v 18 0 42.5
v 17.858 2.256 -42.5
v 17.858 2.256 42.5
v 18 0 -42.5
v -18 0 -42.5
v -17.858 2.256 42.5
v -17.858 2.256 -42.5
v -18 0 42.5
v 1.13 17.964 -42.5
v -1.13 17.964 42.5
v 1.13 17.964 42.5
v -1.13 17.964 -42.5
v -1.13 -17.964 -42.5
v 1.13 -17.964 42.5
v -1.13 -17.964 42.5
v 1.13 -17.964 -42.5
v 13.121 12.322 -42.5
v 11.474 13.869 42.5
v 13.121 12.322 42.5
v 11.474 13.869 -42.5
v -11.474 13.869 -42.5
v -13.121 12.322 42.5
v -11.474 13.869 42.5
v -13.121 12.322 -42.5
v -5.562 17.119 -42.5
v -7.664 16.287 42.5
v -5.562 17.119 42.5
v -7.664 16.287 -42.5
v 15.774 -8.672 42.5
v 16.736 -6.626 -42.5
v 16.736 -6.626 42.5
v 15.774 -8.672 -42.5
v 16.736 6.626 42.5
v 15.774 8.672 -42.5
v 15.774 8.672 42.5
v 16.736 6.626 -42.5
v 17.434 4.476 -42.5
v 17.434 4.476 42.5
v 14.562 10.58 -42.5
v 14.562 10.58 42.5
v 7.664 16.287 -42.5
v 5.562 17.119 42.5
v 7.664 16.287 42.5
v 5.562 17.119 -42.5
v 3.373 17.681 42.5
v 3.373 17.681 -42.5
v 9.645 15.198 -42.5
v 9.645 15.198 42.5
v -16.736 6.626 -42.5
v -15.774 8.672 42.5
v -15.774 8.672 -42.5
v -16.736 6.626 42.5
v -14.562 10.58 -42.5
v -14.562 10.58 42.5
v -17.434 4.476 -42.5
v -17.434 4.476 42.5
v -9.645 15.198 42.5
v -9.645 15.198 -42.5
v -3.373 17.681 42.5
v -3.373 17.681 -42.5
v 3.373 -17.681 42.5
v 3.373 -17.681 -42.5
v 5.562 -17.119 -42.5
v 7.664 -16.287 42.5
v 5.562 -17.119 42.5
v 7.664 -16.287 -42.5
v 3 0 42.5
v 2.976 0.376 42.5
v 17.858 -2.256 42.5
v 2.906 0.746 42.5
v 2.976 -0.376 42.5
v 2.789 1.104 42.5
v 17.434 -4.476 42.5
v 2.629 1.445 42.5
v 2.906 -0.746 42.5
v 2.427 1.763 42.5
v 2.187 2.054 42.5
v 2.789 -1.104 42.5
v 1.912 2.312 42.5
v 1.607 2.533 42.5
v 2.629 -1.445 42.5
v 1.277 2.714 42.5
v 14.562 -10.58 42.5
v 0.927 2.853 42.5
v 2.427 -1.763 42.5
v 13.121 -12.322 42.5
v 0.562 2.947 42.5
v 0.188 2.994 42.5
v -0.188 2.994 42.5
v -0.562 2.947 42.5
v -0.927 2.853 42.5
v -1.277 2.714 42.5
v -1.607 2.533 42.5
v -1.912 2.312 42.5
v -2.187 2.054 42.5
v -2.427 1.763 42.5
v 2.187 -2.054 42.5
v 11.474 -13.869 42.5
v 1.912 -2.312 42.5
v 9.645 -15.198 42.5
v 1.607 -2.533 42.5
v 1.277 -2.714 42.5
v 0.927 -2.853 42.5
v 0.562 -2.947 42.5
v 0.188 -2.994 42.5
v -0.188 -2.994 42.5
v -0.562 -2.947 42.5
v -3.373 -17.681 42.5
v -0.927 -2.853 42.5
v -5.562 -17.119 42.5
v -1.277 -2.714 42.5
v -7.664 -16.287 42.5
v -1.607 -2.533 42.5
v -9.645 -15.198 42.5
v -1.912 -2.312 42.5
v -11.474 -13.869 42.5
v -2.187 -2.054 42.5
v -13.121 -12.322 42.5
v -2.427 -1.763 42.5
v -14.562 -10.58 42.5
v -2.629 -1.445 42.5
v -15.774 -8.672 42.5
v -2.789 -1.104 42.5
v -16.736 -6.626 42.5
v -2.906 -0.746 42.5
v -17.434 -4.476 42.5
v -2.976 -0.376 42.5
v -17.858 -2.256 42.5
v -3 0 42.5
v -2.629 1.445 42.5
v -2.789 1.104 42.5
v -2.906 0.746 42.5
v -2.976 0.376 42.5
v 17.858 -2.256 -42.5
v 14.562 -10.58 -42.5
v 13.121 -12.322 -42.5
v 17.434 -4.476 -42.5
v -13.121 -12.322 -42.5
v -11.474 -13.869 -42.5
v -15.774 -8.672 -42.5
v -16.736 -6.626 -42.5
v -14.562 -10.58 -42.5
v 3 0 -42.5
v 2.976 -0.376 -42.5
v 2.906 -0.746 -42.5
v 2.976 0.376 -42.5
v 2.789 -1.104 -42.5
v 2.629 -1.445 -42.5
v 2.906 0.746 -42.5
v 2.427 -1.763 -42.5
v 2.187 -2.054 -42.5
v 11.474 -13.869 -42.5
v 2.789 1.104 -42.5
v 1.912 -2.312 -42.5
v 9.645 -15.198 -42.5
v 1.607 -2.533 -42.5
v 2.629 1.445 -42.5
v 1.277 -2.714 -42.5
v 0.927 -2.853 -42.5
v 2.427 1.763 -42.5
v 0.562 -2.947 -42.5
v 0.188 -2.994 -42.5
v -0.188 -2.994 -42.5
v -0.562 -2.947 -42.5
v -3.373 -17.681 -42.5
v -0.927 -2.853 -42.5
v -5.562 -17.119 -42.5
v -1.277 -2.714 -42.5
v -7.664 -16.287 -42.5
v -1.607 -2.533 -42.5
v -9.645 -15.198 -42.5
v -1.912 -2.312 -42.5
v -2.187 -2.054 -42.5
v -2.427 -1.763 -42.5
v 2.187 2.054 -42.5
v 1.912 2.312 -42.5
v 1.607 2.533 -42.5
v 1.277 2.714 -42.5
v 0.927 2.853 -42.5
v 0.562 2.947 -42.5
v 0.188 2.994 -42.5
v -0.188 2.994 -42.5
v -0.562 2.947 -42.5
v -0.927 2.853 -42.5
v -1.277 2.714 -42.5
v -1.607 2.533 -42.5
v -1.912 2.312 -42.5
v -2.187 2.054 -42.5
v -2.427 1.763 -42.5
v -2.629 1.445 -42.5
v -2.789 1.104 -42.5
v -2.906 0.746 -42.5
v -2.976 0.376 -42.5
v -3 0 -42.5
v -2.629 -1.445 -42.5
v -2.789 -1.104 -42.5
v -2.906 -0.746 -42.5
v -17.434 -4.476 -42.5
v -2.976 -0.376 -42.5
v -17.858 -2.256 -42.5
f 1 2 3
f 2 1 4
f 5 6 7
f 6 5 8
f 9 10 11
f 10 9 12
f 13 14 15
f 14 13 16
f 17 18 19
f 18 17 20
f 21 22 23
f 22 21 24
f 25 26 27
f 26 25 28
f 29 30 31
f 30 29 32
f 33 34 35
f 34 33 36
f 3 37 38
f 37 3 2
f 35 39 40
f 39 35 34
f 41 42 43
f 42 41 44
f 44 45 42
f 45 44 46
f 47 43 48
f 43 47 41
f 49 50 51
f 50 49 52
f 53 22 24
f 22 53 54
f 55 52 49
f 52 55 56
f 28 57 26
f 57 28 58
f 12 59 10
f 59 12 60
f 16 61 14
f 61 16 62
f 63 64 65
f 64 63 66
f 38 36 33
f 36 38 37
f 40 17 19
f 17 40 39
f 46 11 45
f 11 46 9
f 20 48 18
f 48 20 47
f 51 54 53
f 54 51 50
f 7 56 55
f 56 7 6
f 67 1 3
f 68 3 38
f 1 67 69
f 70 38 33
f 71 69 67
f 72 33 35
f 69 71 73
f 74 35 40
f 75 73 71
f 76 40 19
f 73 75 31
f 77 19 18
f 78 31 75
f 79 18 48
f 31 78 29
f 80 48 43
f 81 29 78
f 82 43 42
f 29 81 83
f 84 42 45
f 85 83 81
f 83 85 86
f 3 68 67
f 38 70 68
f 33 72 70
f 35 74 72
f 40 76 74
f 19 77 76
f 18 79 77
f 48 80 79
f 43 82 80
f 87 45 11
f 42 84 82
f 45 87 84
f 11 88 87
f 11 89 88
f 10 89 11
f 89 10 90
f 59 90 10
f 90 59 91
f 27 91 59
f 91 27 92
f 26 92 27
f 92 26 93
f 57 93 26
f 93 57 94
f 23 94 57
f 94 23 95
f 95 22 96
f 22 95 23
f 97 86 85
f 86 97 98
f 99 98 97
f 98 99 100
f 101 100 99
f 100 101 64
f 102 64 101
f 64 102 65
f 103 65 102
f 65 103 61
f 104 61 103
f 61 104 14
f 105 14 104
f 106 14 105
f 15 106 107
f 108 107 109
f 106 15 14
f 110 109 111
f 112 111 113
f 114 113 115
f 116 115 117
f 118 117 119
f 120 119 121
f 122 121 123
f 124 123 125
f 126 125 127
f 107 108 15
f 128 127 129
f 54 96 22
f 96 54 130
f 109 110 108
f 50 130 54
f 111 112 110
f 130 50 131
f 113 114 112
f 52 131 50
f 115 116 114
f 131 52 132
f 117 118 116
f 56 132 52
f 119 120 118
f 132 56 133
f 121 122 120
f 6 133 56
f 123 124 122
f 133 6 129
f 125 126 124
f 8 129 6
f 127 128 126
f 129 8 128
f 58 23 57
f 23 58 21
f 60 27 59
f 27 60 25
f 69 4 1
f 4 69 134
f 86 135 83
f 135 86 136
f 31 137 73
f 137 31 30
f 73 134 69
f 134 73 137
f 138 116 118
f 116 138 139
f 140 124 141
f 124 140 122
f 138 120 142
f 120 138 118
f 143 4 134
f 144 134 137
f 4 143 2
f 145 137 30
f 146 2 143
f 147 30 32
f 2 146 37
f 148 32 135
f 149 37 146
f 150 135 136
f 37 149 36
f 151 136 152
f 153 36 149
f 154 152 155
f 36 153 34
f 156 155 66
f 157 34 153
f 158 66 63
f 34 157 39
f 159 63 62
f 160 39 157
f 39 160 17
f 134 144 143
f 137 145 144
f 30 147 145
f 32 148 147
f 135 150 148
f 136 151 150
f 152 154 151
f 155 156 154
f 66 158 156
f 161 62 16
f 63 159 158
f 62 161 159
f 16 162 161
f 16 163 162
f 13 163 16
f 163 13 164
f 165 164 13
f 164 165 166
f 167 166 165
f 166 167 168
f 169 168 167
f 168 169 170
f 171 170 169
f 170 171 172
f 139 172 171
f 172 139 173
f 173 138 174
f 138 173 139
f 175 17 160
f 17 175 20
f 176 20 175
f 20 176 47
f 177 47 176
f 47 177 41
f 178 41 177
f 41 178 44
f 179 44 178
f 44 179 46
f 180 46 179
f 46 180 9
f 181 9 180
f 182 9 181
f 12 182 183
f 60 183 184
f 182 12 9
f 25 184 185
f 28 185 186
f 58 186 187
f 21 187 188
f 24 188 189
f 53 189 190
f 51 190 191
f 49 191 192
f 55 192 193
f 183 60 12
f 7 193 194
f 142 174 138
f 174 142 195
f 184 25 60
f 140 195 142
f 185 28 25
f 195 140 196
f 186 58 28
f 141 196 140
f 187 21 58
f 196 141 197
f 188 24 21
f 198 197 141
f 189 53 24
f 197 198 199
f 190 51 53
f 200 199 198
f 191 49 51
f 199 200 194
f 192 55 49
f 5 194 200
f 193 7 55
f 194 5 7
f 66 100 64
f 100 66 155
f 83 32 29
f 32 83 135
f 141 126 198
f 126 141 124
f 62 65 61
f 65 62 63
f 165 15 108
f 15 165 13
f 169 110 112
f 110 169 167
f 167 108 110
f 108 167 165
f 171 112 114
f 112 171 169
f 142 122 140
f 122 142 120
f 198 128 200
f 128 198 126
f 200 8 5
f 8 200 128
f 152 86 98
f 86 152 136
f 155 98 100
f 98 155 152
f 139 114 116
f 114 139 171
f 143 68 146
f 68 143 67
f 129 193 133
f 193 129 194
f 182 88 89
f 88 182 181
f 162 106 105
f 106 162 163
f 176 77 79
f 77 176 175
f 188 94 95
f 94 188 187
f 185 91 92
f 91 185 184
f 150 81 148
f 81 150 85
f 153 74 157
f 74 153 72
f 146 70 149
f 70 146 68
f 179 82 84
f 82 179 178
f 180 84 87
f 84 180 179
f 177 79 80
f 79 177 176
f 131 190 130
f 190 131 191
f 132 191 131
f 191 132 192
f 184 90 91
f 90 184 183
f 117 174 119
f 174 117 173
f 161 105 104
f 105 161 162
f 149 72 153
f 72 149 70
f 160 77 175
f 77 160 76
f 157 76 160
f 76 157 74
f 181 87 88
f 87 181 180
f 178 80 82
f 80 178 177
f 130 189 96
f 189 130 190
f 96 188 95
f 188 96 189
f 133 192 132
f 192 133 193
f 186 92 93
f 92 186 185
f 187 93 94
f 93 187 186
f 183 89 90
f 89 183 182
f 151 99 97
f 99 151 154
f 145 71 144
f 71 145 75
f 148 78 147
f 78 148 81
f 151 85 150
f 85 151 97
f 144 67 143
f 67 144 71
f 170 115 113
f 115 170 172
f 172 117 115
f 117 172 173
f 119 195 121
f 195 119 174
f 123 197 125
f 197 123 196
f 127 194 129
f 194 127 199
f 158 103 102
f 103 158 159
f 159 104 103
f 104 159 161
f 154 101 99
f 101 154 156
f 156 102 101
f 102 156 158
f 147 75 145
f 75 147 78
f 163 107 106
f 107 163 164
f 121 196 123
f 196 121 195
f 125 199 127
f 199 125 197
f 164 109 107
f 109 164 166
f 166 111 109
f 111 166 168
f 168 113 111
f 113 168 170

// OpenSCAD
$fn = 50;


difference() {
	union() {
		translate(v = [0, 0, -42.5000000000]) {
			cylinder(h = 85, r = 18.0000000000);
		}
	}
	union() {
		translate(v = [0, 0, -100.0000000000]) {
			cylinder(h = 200, r = 3.0000000000);
		}
	}
}
